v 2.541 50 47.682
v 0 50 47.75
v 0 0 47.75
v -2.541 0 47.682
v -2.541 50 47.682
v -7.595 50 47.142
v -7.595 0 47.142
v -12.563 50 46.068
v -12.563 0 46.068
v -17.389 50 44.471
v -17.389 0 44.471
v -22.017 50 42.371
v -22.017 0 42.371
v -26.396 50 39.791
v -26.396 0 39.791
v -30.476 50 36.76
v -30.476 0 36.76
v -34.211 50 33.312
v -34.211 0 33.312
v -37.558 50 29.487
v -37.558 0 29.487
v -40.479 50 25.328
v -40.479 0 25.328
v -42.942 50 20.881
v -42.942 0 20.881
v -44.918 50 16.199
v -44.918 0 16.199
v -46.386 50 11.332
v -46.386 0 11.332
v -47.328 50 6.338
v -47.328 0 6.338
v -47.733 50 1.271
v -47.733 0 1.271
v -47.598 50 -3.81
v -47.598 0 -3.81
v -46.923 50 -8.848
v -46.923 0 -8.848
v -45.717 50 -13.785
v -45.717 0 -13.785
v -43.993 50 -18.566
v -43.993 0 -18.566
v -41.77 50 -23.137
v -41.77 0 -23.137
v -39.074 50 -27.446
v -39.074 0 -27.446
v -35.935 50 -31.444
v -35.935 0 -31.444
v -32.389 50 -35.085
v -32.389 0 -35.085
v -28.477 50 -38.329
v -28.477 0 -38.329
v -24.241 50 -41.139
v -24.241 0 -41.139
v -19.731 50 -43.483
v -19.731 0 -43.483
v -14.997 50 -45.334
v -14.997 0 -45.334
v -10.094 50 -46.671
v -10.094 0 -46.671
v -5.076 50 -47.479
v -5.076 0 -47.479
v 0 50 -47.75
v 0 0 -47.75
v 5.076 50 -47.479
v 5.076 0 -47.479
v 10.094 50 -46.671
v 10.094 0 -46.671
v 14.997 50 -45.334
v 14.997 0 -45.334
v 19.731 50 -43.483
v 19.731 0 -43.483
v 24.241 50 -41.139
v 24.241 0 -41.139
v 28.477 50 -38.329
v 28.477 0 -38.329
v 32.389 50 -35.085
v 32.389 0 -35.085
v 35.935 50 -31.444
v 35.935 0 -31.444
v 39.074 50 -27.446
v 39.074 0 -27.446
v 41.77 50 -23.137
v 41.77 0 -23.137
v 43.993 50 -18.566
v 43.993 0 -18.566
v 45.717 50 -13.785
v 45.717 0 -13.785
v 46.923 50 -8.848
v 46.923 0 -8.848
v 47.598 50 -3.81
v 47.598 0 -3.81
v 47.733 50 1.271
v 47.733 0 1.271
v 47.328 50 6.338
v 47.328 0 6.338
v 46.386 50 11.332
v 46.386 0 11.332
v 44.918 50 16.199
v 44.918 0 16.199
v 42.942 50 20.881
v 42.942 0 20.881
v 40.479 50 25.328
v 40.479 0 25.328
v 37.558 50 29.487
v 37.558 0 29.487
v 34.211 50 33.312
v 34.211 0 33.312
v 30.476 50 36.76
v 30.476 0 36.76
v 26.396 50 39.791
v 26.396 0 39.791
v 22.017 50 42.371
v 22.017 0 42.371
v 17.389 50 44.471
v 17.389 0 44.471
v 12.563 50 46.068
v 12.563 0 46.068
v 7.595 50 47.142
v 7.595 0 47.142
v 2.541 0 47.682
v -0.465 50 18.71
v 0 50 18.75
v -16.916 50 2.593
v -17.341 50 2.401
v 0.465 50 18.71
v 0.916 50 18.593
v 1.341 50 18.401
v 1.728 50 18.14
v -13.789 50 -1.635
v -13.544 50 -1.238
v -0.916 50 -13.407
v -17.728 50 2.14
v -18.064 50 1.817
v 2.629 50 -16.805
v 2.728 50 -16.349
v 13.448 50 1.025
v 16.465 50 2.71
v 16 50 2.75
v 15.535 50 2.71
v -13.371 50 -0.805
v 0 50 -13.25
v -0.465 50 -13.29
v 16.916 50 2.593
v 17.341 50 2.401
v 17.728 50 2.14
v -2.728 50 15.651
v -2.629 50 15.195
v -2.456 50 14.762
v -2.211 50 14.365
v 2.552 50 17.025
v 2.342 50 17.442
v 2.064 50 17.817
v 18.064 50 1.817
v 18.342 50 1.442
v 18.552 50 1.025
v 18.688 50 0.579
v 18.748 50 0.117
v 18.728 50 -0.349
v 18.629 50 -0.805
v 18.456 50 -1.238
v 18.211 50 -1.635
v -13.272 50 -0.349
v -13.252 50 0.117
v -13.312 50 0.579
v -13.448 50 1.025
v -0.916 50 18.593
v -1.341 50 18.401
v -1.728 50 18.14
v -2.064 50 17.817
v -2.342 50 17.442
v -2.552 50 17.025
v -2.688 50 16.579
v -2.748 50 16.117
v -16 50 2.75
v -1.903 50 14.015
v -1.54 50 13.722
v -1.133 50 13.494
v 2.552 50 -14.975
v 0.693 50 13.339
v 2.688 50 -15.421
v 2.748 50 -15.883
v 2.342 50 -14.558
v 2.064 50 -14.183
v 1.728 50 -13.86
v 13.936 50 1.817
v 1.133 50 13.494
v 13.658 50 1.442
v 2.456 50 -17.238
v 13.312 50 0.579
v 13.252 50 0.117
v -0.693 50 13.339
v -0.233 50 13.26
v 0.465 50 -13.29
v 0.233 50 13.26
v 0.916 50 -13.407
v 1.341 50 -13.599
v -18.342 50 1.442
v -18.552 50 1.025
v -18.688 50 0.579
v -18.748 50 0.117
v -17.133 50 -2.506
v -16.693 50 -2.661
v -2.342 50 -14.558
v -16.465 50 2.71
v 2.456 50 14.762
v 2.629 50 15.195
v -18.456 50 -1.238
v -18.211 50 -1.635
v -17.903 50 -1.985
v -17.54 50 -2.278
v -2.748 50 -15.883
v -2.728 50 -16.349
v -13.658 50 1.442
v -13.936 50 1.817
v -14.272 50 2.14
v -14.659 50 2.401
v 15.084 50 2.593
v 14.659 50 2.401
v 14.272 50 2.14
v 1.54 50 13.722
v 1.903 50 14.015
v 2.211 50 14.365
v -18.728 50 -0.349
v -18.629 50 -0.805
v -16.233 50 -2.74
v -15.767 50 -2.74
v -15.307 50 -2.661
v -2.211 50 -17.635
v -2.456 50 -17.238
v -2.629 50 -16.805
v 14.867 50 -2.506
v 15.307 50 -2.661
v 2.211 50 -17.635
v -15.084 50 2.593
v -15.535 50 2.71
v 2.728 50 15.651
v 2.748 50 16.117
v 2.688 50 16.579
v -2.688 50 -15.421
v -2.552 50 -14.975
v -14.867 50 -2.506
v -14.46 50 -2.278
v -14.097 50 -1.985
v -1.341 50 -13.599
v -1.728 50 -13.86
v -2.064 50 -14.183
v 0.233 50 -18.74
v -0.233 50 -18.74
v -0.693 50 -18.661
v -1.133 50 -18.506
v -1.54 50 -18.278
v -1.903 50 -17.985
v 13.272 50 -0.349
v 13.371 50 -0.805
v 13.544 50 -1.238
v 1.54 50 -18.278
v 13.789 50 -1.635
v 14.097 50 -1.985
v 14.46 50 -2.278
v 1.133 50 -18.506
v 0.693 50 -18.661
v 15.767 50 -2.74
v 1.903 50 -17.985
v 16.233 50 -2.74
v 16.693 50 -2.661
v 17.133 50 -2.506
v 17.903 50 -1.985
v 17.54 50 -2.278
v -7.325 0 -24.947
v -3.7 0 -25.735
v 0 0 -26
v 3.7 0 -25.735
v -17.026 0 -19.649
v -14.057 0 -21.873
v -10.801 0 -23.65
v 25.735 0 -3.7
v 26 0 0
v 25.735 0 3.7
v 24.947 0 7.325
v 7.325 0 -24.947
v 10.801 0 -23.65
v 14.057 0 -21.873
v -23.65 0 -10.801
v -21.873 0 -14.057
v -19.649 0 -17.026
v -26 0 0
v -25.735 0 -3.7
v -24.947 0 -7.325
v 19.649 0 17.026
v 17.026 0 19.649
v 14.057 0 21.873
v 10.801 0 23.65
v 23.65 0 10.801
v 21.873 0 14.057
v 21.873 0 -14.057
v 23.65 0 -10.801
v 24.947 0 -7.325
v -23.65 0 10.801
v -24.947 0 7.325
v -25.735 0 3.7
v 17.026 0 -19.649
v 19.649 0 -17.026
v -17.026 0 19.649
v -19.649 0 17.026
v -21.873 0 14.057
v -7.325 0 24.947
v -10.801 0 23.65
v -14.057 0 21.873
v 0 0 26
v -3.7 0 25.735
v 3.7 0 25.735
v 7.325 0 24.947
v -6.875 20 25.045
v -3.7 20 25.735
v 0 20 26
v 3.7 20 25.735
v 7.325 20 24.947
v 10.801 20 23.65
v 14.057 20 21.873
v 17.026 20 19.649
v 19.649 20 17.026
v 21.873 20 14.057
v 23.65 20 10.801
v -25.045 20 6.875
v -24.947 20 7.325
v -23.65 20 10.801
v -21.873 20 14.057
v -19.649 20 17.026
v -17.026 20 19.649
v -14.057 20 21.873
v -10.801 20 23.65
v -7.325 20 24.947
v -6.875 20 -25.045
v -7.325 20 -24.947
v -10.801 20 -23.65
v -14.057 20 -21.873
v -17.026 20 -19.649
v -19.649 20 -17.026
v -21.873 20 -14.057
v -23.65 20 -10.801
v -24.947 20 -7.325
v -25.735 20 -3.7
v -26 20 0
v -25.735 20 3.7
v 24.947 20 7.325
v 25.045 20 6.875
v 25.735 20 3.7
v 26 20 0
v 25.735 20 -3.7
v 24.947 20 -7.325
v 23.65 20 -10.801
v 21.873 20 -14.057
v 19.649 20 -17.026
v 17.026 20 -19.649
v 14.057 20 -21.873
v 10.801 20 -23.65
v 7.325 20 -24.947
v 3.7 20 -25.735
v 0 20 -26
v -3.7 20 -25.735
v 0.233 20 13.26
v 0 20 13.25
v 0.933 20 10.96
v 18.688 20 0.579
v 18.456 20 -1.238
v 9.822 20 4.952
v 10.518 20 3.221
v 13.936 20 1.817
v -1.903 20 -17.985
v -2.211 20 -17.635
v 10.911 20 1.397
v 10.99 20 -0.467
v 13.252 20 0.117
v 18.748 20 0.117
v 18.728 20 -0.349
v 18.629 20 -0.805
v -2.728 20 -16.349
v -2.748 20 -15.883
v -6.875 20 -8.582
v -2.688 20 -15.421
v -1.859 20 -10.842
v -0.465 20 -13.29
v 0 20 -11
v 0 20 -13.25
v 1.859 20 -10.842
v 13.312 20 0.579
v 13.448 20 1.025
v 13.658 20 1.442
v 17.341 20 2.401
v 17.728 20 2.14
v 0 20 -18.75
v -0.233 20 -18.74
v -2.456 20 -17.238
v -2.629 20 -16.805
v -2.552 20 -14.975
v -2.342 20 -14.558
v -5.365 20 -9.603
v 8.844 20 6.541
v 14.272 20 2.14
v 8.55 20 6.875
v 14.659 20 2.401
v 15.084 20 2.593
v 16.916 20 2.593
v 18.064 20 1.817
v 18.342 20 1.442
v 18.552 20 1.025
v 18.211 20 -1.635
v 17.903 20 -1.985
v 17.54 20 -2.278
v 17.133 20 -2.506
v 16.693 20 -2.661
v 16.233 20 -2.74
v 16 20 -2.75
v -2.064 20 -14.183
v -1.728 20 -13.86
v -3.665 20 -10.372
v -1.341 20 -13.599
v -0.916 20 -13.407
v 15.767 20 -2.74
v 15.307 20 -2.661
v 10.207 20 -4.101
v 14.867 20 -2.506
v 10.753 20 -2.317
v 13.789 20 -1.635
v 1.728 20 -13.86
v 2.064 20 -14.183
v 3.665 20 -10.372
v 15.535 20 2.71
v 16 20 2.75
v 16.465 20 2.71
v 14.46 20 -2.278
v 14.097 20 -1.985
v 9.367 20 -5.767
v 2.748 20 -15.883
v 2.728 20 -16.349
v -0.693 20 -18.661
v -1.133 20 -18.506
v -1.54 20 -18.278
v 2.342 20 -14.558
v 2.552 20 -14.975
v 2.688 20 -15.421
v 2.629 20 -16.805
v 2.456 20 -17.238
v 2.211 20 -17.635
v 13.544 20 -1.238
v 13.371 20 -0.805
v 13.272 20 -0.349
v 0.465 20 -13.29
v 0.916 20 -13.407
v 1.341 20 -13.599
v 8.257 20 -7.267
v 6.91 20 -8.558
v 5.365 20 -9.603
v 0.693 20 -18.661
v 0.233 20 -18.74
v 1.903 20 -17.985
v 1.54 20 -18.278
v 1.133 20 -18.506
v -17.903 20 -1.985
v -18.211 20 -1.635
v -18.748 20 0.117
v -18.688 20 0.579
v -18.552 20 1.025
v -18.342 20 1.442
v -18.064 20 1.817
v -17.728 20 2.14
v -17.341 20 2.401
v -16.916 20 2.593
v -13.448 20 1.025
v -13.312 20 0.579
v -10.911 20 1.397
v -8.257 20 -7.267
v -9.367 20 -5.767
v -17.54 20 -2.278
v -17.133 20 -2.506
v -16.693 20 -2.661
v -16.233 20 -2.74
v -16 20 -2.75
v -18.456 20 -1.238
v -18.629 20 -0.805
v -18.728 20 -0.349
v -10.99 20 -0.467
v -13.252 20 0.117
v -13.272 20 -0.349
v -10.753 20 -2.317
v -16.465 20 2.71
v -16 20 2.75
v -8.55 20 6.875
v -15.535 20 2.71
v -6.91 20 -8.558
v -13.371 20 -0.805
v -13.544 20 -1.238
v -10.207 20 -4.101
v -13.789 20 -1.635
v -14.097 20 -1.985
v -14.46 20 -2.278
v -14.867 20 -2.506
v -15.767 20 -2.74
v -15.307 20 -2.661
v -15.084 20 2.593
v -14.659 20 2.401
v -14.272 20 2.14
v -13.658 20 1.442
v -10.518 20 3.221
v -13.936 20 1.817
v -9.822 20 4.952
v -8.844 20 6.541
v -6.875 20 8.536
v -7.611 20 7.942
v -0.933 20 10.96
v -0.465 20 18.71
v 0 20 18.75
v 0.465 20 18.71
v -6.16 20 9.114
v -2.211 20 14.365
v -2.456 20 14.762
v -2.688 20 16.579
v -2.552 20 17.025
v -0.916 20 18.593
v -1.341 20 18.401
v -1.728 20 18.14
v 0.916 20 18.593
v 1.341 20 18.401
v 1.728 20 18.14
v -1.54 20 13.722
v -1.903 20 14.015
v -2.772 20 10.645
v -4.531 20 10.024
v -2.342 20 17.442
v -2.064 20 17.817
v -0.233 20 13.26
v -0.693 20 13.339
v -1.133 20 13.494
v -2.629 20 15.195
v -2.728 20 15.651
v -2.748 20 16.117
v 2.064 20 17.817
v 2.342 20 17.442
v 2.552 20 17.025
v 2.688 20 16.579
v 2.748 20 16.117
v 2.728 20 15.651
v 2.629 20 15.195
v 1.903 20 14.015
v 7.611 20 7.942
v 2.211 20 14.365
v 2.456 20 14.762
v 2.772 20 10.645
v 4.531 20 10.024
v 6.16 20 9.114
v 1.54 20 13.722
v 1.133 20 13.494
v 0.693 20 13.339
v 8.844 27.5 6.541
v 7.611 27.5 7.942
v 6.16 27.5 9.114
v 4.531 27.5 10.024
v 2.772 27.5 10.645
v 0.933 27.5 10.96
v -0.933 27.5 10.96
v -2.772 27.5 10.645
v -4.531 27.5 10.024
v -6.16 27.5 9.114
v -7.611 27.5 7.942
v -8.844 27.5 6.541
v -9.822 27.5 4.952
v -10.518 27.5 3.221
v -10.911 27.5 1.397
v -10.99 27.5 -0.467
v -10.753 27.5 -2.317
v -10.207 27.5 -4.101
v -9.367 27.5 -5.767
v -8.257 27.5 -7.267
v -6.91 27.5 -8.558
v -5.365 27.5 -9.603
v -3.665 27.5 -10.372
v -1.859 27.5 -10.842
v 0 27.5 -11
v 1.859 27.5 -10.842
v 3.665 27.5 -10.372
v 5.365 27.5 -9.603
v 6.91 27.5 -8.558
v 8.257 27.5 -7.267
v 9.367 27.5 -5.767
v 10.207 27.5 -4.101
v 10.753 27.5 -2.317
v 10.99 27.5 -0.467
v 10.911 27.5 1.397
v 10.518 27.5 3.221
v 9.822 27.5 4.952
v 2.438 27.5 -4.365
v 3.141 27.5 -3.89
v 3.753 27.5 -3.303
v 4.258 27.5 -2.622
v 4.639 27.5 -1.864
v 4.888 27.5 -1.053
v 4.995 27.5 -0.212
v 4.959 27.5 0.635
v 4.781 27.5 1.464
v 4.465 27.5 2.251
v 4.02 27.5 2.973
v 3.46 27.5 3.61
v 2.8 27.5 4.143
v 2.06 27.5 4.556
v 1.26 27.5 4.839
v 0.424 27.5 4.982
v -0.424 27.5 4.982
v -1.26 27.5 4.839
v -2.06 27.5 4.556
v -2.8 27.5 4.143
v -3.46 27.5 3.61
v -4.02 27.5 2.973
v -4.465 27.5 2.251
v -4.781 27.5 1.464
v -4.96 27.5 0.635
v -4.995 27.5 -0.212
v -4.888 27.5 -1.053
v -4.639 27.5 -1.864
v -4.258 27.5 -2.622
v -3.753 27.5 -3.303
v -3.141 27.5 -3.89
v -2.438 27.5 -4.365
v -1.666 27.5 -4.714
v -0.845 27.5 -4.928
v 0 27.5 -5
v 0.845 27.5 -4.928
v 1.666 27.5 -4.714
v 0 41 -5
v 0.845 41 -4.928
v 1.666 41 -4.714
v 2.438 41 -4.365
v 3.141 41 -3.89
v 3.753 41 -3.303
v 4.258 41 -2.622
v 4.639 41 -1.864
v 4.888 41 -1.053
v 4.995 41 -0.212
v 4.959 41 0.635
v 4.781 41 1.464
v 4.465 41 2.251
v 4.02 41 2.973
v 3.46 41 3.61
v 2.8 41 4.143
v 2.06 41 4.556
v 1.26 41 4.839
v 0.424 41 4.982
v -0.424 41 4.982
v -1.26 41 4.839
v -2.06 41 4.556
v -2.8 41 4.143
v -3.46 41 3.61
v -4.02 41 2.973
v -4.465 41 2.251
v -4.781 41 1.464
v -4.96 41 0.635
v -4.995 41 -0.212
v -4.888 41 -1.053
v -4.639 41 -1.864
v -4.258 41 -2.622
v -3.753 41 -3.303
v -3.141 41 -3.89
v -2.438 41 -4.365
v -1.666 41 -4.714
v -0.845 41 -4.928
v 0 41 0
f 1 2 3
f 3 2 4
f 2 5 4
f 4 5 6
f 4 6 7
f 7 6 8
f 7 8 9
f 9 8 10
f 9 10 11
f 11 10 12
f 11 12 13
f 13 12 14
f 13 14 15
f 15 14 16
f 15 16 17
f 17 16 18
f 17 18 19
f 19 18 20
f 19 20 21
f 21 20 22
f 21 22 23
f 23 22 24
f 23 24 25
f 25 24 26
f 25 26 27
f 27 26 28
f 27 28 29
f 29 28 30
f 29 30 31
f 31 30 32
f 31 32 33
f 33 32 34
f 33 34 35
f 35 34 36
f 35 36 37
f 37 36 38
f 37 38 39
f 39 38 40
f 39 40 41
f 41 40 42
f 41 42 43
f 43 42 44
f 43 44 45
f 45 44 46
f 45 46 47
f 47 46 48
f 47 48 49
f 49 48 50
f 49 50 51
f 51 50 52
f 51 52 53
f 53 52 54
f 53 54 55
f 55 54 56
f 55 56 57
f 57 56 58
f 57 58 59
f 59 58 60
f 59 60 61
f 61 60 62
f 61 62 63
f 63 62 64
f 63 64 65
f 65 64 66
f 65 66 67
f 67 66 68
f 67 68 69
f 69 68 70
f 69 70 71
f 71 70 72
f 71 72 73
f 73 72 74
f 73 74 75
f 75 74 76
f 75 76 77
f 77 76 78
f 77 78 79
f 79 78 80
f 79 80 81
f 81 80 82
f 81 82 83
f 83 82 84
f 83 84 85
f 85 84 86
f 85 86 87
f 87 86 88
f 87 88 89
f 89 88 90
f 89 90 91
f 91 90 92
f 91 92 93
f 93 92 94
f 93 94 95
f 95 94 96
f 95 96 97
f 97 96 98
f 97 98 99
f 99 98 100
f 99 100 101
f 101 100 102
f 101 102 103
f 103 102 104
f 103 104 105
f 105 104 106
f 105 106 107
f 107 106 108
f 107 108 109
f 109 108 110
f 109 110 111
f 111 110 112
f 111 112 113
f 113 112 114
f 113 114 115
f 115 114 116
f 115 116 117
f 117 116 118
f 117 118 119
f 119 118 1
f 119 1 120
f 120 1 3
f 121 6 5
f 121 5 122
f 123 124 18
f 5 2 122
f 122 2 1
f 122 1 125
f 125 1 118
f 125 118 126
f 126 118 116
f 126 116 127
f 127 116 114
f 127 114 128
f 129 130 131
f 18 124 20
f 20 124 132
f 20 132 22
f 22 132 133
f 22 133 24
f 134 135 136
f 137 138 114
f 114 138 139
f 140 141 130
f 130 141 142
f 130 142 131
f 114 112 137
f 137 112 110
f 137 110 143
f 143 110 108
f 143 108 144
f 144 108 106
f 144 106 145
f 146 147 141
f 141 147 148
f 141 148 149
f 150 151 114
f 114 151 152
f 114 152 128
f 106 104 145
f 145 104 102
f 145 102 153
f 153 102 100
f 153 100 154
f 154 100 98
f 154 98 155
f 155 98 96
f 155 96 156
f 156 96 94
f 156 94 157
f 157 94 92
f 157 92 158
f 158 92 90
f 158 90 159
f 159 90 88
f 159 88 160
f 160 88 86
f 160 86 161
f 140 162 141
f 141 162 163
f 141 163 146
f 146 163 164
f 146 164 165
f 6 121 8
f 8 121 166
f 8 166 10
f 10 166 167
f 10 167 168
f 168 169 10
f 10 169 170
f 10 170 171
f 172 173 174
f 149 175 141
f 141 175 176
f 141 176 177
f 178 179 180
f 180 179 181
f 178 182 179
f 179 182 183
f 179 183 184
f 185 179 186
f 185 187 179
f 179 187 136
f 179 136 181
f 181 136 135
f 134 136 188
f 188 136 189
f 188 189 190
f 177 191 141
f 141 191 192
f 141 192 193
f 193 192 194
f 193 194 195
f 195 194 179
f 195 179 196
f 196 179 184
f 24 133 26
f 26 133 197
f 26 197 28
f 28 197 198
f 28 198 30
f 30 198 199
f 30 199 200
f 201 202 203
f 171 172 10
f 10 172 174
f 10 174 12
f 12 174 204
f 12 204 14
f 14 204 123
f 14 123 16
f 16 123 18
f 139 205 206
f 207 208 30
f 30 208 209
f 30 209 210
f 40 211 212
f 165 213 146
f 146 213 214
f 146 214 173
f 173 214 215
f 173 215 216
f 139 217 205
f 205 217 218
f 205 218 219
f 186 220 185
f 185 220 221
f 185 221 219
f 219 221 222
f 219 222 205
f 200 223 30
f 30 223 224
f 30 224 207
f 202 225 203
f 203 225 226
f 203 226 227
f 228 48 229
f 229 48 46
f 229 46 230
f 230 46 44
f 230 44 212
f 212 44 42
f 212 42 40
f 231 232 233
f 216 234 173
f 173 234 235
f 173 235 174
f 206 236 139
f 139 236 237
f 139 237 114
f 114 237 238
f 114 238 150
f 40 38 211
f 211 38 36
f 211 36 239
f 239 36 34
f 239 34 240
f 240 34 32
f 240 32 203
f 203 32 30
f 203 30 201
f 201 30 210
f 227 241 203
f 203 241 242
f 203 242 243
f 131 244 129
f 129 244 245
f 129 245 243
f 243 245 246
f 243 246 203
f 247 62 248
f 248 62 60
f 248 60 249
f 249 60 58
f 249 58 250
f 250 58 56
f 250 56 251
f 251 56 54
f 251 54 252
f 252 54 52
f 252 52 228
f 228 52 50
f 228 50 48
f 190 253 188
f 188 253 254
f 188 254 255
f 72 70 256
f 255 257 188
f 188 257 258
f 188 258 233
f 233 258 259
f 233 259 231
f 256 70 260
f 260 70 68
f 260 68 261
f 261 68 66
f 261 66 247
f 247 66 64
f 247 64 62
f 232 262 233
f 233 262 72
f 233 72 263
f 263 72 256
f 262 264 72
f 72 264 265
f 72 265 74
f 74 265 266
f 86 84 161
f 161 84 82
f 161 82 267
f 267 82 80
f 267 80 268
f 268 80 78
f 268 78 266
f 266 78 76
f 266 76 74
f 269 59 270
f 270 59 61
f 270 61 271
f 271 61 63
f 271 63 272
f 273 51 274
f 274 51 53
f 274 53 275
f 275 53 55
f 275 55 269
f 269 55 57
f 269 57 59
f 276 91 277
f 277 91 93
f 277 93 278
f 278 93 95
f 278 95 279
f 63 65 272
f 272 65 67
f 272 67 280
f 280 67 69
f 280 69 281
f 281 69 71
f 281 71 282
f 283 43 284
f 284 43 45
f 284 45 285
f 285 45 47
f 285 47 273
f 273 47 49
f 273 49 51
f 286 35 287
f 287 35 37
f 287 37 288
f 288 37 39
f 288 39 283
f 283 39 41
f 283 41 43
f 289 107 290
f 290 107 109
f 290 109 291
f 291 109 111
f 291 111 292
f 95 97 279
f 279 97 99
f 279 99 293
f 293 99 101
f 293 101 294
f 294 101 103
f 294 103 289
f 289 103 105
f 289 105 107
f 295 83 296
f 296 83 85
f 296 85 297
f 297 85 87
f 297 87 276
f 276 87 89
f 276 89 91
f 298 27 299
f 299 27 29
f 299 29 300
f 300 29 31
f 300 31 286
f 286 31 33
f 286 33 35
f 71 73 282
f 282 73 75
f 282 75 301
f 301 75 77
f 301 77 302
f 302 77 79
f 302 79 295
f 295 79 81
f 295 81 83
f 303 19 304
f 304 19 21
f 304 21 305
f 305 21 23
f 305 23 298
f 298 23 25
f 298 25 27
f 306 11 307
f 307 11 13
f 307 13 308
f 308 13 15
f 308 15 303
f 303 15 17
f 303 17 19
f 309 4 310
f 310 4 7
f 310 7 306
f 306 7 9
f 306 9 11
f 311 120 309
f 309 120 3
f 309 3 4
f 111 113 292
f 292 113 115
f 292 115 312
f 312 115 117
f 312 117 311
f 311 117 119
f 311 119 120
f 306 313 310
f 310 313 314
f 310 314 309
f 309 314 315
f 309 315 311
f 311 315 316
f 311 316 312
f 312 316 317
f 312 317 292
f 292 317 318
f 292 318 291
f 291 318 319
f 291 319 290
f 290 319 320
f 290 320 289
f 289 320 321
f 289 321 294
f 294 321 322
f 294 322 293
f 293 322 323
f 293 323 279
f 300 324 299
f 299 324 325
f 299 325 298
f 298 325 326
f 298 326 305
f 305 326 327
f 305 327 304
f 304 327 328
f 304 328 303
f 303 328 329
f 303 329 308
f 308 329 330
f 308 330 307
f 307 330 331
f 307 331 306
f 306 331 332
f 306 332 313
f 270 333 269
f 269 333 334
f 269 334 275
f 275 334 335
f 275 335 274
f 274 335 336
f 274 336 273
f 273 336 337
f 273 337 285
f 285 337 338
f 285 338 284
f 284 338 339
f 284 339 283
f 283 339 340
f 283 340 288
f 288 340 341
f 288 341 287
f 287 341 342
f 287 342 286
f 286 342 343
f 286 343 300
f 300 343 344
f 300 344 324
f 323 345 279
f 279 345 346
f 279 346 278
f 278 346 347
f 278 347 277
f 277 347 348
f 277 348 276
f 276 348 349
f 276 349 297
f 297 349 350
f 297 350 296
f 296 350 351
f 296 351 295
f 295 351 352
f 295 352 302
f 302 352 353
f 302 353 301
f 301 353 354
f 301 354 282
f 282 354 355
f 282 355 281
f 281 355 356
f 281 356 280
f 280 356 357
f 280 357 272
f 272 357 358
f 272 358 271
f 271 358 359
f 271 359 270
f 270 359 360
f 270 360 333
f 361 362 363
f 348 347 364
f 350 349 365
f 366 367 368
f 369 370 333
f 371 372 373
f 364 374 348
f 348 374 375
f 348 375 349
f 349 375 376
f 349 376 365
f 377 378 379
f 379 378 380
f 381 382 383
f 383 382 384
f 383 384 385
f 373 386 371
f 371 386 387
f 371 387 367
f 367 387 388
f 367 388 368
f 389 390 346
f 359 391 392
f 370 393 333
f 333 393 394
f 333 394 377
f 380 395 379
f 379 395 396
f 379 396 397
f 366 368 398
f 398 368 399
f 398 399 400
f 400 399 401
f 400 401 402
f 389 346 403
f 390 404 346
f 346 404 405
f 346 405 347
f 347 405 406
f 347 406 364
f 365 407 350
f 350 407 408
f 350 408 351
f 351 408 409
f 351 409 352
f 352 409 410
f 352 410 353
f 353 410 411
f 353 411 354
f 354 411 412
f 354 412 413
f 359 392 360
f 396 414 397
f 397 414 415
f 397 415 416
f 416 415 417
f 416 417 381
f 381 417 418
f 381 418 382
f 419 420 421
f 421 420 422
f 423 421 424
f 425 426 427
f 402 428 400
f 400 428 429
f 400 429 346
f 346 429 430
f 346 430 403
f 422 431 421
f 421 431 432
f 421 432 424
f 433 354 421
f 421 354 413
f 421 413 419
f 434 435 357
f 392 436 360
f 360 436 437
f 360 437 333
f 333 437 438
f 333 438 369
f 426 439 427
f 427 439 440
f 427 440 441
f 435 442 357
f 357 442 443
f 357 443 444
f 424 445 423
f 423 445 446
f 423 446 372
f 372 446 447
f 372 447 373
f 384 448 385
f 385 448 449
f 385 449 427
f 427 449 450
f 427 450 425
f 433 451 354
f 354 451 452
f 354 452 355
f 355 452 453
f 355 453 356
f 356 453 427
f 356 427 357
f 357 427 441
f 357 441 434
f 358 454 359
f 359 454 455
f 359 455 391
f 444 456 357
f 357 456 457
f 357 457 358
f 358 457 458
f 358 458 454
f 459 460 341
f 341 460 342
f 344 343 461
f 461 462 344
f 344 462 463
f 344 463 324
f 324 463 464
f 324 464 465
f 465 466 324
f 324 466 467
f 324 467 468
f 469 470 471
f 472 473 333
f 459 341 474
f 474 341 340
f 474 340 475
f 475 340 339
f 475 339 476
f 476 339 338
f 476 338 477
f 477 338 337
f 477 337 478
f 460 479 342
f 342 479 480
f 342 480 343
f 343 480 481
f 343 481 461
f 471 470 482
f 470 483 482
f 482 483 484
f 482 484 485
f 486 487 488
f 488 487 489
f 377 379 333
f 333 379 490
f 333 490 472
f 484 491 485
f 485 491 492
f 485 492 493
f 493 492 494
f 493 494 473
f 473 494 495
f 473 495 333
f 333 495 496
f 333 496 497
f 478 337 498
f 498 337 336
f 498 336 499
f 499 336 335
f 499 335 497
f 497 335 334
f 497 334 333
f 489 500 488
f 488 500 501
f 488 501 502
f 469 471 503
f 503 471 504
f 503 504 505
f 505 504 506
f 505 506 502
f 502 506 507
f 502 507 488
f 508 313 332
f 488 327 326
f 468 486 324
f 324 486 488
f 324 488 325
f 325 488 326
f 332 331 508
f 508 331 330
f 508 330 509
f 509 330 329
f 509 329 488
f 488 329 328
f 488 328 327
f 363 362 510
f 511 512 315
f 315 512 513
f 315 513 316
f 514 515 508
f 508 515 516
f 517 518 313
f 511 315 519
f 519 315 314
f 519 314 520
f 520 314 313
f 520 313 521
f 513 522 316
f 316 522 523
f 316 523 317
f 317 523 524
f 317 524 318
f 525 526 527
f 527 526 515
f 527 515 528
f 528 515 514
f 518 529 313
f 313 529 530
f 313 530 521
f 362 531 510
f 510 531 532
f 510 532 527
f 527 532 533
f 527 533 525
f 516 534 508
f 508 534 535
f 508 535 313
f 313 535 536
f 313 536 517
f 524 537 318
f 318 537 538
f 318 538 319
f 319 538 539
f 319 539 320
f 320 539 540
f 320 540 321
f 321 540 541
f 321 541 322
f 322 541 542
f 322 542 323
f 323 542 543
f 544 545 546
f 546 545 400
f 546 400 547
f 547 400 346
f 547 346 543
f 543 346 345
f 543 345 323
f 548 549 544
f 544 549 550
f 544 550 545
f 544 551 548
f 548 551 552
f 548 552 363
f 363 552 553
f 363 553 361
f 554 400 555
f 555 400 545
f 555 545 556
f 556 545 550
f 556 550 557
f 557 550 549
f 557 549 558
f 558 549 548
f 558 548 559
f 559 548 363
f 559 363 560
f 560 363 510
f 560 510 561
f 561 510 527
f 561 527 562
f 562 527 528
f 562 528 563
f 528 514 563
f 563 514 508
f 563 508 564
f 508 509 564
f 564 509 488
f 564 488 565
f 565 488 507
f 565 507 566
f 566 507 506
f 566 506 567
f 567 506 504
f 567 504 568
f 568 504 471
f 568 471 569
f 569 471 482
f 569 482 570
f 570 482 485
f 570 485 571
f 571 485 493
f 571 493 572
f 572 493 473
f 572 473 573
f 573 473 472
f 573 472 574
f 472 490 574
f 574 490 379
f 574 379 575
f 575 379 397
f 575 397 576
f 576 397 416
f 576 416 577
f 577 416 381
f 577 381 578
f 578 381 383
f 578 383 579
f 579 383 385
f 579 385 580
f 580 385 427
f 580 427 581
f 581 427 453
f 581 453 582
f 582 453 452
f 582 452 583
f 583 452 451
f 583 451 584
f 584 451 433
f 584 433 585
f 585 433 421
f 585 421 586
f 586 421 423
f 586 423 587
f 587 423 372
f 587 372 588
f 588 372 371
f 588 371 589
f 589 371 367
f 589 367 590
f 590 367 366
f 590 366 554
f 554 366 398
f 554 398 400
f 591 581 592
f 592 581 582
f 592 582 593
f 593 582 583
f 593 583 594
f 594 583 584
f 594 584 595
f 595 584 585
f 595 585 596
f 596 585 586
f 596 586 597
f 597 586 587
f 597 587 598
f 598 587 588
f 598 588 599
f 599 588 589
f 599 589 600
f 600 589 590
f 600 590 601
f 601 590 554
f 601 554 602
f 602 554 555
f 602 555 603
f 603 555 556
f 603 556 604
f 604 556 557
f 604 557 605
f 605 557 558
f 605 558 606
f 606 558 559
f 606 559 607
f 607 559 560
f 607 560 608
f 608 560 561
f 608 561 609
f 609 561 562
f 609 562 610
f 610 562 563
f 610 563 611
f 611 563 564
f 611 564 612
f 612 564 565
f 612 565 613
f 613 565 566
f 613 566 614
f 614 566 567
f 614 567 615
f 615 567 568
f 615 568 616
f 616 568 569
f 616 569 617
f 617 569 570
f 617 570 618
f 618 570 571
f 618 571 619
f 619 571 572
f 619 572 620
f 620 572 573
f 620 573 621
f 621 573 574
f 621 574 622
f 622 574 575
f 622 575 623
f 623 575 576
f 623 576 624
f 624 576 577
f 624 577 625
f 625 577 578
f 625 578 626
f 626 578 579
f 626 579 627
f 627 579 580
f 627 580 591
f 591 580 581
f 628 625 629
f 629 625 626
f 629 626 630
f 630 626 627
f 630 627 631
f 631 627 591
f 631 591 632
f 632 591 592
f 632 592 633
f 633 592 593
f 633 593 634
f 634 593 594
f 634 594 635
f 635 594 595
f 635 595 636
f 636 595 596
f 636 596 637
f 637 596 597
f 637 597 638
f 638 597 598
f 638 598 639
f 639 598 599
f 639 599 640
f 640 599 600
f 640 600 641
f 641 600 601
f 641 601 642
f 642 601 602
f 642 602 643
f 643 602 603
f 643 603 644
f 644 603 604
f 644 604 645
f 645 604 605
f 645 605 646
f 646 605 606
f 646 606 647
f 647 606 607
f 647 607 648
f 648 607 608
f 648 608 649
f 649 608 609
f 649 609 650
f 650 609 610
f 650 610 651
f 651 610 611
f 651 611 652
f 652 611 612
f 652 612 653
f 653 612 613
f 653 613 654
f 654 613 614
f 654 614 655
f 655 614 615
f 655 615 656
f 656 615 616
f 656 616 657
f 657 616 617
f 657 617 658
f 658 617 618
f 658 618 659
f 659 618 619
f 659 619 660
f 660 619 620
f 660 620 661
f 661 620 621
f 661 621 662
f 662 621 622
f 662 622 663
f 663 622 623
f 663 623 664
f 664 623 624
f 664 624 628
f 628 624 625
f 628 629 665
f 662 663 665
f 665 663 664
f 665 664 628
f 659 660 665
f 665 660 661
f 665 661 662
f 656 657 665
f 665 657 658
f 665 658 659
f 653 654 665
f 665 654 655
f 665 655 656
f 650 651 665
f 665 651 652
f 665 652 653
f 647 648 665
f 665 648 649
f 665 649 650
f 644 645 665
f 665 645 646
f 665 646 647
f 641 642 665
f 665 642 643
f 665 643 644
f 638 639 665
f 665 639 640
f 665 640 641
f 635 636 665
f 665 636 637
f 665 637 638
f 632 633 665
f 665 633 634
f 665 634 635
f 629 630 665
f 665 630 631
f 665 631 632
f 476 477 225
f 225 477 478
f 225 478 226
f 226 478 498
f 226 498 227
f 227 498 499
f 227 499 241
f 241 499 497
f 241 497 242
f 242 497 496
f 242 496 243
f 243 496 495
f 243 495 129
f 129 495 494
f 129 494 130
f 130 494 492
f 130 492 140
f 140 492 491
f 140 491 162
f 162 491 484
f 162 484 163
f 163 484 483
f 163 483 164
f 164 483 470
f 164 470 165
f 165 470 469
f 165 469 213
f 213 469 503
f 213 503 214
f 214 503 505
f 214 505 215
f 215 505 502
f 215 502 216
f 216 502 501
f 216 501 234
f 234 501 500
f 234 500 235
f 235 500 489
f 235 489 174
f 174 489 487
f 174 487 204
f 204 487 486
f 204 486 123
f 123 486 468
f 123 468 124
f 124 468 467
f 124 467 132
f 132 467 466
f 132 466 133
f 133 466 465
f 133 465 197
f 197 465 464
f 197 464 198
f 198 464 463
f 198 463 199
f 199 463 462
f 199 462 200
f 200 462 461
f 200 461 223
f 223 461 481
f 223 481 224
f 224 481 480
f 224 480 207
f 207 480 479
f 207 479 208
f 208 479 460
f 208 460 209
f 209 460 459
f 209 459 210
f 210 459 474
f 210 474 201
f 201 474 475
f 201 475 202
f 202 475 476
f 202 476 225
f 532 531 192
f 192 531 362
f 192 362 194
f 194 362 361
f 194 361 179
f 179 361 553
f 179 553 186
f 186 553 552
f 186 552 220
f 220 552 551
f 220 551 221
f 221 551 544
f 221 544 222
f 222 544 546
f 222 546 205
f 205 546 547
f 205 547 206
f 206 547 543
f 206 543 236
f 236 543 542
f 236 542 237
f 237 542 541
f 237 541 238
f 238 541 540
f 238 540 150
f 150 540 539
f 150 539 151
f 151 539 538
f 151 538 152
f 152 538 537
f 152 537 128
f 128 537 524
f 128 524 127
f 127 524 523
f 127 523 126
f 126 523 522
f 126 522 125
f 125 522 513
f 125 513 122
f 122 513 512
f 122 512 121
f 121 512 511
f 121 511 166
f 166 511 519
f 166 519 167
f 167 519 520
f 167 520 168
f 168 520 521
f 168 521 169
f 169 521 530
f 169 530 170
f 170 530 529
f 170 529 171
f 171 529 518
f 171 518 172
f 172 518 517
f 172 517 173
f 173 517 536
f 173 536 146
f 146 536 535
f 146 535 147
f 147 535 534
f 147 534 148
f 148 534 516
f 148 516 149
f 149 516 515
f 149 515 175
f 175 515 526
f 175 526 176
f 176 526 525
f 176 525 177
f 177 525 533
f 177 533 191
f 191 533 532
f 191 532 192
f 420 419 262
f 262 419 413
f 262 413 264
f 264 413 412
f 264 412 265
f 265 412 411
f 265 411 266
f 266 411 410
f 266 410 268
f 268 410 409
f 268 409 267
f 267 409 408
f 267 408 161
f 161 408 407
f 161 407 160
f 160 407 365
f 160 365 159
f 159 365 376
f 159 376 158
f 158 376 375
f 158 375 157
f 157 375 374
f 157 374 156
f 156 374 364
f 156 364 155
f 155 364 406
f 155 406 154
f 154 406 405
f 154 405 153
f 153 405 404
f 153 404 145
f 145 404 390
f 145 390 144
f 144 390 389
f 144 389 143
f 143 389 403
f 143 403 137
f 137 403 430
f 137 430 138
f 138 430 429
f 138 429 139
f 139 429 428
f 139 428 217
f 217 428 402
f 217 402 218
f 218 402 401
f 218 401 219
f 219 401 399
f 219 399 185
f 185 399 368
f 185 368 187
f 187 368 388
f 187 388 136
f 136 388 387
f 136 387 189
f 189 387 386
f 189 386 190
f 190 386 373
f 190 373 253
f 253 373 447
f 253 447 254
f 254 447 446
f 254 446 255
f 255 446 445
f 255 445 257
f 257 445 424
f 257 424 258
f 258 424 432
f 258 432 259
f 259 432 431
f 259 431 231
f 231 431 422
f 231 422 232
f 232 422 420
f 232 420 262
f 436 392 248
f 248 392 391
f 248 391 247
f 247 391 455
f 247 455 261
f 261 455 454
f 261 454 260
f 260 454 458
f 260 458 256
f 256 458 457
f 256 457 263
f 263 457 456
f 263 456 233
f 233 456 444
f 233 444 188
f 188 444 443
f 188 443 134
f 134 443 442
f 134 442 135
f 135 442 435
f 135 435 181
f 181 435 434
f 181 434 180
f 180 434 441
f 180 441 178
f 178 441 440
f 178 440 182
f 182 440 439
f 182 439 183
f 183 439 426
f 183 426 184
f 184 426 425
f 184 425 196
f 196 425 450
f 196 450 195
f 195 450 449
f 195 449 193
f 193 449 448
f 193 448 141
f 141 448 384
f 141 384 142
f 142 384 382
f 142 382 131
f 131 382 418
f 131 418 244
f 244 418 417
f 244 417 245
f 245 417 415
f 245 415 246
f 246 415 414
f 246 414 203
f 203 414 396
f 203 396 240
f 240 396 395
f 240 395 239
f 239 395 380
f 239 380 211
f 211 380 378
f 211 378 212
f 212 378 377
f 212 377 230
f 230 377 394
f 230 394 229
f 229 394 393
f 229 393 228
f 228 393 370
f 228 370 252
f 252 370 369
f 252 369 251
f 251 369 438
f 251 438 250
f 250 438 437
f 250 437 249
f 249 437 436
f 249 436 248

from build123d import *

# Parameters (mm, degrees)
ESQUISSE1_R              = 47.75
BOSS_EXTRU_1_DEPTH       = 50
ESQUISSE2_R              = 26
ENL_V_MAT_EXTRU_1_DEPTH  = 20
ESQUISSE3_R              = 11
ENL_V_MAT_EXTRU_5_DEPTH  = 7.5
ESQUISSE4_R              = 5
ENL_V_MAT_EXTRU_6_DEPTH  = 13.5
ESQUISSE11_R             = 2.75
ENL_V_MAT_EXTRU_11_DEPTH = 85.024549984


with BuildPart() as part:
    # Esquisse1 → Boss.-Extru.1 (new body)
    with BuildSketch(Plane(origin=(0, 0, 0), x_dir=(1, 0, 0), z_dir=(0, 1, 0))):
        with Locations(Location((0, 0, 0), (0, 0, 270))):
            Circle(ESQUISSE1_R)
    extrude(amount=BOSS_EXTRU_1_DEPTH)

    # Esquisse2 → Enlèv. mat.-Extru.1 (cut)
    with BuildSketch(Plane(origin=(0, 0, 0), x_dir=(-1, 0, 0), z_dir=(0, -1, 0))):
        with Locations(Location((0, 0, 0), (0, 0, 90))):
            Circle(ESQUISSE2_R)
    extrude(amount=-ENL_V_MAT_EXTRU_1_DEPTH, mode=Mode.SUBTRACT)

    # Esquisse3 → Enlèv. mat.-Extru.5 (cut)
    with BuildSketch(Plane(origin=(0, 20, 0), x_dir=(-1, 0, 0), z_dir=(0, -1, 0))):
        with Locations(Location((0, 0, 0), (0, 0, 90))):
            Circle(ESQUISSE3_R)
    extrude(amount=-ENL_V_MAT_EXTRU_5_DEPTH, mode=Mode.SUBTRACT)

    # Esquisse4 → Enlèv. mat.-Extru.6 (cut)
    with BuildSketch(Plane(origin=(0, 27.5, 0), x_dir=(-1, 0, 0), z_dir=(0, -1, 0))):
        with Locations(Location((0, 0, 0), (0, 0, 90))):
            Circle(ESQUISSE4_R)
    extrude(amount=-ENL_V_MAT_EXTRU_6_DEPTH, mode=Mode.SUBTRACT)

    # Esquisse11 → Enlèv. mat.-Extru.11 (cut, through all)
    with BuildSketch(Plane(origin=(0, 50, 0), x_dir=(1, 0, 0), z_dir=(0, 1, 0))):
        with Locations(Location((-16, 0, 0), (0, 0, 270))):
            Circle(ESQUISSE11_R)
        with Locations(Location((0, 16, 0), (0, 0, 270))):
            Circle(ESQUISSE11_R)
        with Locations(Location((16, 0, 0), (0, 0, 270))):
            Circle(ESQUISSE11_R)
        with Locations(Location((0, -16, 0), (0, 0, 270))):
            Circle(ESQUISSE11_R)
    extrude(amount=-ENL_V_MAT_EXTRU_11_DEPTH, mode=Mode.SUBTRACT)


solid = part.part
